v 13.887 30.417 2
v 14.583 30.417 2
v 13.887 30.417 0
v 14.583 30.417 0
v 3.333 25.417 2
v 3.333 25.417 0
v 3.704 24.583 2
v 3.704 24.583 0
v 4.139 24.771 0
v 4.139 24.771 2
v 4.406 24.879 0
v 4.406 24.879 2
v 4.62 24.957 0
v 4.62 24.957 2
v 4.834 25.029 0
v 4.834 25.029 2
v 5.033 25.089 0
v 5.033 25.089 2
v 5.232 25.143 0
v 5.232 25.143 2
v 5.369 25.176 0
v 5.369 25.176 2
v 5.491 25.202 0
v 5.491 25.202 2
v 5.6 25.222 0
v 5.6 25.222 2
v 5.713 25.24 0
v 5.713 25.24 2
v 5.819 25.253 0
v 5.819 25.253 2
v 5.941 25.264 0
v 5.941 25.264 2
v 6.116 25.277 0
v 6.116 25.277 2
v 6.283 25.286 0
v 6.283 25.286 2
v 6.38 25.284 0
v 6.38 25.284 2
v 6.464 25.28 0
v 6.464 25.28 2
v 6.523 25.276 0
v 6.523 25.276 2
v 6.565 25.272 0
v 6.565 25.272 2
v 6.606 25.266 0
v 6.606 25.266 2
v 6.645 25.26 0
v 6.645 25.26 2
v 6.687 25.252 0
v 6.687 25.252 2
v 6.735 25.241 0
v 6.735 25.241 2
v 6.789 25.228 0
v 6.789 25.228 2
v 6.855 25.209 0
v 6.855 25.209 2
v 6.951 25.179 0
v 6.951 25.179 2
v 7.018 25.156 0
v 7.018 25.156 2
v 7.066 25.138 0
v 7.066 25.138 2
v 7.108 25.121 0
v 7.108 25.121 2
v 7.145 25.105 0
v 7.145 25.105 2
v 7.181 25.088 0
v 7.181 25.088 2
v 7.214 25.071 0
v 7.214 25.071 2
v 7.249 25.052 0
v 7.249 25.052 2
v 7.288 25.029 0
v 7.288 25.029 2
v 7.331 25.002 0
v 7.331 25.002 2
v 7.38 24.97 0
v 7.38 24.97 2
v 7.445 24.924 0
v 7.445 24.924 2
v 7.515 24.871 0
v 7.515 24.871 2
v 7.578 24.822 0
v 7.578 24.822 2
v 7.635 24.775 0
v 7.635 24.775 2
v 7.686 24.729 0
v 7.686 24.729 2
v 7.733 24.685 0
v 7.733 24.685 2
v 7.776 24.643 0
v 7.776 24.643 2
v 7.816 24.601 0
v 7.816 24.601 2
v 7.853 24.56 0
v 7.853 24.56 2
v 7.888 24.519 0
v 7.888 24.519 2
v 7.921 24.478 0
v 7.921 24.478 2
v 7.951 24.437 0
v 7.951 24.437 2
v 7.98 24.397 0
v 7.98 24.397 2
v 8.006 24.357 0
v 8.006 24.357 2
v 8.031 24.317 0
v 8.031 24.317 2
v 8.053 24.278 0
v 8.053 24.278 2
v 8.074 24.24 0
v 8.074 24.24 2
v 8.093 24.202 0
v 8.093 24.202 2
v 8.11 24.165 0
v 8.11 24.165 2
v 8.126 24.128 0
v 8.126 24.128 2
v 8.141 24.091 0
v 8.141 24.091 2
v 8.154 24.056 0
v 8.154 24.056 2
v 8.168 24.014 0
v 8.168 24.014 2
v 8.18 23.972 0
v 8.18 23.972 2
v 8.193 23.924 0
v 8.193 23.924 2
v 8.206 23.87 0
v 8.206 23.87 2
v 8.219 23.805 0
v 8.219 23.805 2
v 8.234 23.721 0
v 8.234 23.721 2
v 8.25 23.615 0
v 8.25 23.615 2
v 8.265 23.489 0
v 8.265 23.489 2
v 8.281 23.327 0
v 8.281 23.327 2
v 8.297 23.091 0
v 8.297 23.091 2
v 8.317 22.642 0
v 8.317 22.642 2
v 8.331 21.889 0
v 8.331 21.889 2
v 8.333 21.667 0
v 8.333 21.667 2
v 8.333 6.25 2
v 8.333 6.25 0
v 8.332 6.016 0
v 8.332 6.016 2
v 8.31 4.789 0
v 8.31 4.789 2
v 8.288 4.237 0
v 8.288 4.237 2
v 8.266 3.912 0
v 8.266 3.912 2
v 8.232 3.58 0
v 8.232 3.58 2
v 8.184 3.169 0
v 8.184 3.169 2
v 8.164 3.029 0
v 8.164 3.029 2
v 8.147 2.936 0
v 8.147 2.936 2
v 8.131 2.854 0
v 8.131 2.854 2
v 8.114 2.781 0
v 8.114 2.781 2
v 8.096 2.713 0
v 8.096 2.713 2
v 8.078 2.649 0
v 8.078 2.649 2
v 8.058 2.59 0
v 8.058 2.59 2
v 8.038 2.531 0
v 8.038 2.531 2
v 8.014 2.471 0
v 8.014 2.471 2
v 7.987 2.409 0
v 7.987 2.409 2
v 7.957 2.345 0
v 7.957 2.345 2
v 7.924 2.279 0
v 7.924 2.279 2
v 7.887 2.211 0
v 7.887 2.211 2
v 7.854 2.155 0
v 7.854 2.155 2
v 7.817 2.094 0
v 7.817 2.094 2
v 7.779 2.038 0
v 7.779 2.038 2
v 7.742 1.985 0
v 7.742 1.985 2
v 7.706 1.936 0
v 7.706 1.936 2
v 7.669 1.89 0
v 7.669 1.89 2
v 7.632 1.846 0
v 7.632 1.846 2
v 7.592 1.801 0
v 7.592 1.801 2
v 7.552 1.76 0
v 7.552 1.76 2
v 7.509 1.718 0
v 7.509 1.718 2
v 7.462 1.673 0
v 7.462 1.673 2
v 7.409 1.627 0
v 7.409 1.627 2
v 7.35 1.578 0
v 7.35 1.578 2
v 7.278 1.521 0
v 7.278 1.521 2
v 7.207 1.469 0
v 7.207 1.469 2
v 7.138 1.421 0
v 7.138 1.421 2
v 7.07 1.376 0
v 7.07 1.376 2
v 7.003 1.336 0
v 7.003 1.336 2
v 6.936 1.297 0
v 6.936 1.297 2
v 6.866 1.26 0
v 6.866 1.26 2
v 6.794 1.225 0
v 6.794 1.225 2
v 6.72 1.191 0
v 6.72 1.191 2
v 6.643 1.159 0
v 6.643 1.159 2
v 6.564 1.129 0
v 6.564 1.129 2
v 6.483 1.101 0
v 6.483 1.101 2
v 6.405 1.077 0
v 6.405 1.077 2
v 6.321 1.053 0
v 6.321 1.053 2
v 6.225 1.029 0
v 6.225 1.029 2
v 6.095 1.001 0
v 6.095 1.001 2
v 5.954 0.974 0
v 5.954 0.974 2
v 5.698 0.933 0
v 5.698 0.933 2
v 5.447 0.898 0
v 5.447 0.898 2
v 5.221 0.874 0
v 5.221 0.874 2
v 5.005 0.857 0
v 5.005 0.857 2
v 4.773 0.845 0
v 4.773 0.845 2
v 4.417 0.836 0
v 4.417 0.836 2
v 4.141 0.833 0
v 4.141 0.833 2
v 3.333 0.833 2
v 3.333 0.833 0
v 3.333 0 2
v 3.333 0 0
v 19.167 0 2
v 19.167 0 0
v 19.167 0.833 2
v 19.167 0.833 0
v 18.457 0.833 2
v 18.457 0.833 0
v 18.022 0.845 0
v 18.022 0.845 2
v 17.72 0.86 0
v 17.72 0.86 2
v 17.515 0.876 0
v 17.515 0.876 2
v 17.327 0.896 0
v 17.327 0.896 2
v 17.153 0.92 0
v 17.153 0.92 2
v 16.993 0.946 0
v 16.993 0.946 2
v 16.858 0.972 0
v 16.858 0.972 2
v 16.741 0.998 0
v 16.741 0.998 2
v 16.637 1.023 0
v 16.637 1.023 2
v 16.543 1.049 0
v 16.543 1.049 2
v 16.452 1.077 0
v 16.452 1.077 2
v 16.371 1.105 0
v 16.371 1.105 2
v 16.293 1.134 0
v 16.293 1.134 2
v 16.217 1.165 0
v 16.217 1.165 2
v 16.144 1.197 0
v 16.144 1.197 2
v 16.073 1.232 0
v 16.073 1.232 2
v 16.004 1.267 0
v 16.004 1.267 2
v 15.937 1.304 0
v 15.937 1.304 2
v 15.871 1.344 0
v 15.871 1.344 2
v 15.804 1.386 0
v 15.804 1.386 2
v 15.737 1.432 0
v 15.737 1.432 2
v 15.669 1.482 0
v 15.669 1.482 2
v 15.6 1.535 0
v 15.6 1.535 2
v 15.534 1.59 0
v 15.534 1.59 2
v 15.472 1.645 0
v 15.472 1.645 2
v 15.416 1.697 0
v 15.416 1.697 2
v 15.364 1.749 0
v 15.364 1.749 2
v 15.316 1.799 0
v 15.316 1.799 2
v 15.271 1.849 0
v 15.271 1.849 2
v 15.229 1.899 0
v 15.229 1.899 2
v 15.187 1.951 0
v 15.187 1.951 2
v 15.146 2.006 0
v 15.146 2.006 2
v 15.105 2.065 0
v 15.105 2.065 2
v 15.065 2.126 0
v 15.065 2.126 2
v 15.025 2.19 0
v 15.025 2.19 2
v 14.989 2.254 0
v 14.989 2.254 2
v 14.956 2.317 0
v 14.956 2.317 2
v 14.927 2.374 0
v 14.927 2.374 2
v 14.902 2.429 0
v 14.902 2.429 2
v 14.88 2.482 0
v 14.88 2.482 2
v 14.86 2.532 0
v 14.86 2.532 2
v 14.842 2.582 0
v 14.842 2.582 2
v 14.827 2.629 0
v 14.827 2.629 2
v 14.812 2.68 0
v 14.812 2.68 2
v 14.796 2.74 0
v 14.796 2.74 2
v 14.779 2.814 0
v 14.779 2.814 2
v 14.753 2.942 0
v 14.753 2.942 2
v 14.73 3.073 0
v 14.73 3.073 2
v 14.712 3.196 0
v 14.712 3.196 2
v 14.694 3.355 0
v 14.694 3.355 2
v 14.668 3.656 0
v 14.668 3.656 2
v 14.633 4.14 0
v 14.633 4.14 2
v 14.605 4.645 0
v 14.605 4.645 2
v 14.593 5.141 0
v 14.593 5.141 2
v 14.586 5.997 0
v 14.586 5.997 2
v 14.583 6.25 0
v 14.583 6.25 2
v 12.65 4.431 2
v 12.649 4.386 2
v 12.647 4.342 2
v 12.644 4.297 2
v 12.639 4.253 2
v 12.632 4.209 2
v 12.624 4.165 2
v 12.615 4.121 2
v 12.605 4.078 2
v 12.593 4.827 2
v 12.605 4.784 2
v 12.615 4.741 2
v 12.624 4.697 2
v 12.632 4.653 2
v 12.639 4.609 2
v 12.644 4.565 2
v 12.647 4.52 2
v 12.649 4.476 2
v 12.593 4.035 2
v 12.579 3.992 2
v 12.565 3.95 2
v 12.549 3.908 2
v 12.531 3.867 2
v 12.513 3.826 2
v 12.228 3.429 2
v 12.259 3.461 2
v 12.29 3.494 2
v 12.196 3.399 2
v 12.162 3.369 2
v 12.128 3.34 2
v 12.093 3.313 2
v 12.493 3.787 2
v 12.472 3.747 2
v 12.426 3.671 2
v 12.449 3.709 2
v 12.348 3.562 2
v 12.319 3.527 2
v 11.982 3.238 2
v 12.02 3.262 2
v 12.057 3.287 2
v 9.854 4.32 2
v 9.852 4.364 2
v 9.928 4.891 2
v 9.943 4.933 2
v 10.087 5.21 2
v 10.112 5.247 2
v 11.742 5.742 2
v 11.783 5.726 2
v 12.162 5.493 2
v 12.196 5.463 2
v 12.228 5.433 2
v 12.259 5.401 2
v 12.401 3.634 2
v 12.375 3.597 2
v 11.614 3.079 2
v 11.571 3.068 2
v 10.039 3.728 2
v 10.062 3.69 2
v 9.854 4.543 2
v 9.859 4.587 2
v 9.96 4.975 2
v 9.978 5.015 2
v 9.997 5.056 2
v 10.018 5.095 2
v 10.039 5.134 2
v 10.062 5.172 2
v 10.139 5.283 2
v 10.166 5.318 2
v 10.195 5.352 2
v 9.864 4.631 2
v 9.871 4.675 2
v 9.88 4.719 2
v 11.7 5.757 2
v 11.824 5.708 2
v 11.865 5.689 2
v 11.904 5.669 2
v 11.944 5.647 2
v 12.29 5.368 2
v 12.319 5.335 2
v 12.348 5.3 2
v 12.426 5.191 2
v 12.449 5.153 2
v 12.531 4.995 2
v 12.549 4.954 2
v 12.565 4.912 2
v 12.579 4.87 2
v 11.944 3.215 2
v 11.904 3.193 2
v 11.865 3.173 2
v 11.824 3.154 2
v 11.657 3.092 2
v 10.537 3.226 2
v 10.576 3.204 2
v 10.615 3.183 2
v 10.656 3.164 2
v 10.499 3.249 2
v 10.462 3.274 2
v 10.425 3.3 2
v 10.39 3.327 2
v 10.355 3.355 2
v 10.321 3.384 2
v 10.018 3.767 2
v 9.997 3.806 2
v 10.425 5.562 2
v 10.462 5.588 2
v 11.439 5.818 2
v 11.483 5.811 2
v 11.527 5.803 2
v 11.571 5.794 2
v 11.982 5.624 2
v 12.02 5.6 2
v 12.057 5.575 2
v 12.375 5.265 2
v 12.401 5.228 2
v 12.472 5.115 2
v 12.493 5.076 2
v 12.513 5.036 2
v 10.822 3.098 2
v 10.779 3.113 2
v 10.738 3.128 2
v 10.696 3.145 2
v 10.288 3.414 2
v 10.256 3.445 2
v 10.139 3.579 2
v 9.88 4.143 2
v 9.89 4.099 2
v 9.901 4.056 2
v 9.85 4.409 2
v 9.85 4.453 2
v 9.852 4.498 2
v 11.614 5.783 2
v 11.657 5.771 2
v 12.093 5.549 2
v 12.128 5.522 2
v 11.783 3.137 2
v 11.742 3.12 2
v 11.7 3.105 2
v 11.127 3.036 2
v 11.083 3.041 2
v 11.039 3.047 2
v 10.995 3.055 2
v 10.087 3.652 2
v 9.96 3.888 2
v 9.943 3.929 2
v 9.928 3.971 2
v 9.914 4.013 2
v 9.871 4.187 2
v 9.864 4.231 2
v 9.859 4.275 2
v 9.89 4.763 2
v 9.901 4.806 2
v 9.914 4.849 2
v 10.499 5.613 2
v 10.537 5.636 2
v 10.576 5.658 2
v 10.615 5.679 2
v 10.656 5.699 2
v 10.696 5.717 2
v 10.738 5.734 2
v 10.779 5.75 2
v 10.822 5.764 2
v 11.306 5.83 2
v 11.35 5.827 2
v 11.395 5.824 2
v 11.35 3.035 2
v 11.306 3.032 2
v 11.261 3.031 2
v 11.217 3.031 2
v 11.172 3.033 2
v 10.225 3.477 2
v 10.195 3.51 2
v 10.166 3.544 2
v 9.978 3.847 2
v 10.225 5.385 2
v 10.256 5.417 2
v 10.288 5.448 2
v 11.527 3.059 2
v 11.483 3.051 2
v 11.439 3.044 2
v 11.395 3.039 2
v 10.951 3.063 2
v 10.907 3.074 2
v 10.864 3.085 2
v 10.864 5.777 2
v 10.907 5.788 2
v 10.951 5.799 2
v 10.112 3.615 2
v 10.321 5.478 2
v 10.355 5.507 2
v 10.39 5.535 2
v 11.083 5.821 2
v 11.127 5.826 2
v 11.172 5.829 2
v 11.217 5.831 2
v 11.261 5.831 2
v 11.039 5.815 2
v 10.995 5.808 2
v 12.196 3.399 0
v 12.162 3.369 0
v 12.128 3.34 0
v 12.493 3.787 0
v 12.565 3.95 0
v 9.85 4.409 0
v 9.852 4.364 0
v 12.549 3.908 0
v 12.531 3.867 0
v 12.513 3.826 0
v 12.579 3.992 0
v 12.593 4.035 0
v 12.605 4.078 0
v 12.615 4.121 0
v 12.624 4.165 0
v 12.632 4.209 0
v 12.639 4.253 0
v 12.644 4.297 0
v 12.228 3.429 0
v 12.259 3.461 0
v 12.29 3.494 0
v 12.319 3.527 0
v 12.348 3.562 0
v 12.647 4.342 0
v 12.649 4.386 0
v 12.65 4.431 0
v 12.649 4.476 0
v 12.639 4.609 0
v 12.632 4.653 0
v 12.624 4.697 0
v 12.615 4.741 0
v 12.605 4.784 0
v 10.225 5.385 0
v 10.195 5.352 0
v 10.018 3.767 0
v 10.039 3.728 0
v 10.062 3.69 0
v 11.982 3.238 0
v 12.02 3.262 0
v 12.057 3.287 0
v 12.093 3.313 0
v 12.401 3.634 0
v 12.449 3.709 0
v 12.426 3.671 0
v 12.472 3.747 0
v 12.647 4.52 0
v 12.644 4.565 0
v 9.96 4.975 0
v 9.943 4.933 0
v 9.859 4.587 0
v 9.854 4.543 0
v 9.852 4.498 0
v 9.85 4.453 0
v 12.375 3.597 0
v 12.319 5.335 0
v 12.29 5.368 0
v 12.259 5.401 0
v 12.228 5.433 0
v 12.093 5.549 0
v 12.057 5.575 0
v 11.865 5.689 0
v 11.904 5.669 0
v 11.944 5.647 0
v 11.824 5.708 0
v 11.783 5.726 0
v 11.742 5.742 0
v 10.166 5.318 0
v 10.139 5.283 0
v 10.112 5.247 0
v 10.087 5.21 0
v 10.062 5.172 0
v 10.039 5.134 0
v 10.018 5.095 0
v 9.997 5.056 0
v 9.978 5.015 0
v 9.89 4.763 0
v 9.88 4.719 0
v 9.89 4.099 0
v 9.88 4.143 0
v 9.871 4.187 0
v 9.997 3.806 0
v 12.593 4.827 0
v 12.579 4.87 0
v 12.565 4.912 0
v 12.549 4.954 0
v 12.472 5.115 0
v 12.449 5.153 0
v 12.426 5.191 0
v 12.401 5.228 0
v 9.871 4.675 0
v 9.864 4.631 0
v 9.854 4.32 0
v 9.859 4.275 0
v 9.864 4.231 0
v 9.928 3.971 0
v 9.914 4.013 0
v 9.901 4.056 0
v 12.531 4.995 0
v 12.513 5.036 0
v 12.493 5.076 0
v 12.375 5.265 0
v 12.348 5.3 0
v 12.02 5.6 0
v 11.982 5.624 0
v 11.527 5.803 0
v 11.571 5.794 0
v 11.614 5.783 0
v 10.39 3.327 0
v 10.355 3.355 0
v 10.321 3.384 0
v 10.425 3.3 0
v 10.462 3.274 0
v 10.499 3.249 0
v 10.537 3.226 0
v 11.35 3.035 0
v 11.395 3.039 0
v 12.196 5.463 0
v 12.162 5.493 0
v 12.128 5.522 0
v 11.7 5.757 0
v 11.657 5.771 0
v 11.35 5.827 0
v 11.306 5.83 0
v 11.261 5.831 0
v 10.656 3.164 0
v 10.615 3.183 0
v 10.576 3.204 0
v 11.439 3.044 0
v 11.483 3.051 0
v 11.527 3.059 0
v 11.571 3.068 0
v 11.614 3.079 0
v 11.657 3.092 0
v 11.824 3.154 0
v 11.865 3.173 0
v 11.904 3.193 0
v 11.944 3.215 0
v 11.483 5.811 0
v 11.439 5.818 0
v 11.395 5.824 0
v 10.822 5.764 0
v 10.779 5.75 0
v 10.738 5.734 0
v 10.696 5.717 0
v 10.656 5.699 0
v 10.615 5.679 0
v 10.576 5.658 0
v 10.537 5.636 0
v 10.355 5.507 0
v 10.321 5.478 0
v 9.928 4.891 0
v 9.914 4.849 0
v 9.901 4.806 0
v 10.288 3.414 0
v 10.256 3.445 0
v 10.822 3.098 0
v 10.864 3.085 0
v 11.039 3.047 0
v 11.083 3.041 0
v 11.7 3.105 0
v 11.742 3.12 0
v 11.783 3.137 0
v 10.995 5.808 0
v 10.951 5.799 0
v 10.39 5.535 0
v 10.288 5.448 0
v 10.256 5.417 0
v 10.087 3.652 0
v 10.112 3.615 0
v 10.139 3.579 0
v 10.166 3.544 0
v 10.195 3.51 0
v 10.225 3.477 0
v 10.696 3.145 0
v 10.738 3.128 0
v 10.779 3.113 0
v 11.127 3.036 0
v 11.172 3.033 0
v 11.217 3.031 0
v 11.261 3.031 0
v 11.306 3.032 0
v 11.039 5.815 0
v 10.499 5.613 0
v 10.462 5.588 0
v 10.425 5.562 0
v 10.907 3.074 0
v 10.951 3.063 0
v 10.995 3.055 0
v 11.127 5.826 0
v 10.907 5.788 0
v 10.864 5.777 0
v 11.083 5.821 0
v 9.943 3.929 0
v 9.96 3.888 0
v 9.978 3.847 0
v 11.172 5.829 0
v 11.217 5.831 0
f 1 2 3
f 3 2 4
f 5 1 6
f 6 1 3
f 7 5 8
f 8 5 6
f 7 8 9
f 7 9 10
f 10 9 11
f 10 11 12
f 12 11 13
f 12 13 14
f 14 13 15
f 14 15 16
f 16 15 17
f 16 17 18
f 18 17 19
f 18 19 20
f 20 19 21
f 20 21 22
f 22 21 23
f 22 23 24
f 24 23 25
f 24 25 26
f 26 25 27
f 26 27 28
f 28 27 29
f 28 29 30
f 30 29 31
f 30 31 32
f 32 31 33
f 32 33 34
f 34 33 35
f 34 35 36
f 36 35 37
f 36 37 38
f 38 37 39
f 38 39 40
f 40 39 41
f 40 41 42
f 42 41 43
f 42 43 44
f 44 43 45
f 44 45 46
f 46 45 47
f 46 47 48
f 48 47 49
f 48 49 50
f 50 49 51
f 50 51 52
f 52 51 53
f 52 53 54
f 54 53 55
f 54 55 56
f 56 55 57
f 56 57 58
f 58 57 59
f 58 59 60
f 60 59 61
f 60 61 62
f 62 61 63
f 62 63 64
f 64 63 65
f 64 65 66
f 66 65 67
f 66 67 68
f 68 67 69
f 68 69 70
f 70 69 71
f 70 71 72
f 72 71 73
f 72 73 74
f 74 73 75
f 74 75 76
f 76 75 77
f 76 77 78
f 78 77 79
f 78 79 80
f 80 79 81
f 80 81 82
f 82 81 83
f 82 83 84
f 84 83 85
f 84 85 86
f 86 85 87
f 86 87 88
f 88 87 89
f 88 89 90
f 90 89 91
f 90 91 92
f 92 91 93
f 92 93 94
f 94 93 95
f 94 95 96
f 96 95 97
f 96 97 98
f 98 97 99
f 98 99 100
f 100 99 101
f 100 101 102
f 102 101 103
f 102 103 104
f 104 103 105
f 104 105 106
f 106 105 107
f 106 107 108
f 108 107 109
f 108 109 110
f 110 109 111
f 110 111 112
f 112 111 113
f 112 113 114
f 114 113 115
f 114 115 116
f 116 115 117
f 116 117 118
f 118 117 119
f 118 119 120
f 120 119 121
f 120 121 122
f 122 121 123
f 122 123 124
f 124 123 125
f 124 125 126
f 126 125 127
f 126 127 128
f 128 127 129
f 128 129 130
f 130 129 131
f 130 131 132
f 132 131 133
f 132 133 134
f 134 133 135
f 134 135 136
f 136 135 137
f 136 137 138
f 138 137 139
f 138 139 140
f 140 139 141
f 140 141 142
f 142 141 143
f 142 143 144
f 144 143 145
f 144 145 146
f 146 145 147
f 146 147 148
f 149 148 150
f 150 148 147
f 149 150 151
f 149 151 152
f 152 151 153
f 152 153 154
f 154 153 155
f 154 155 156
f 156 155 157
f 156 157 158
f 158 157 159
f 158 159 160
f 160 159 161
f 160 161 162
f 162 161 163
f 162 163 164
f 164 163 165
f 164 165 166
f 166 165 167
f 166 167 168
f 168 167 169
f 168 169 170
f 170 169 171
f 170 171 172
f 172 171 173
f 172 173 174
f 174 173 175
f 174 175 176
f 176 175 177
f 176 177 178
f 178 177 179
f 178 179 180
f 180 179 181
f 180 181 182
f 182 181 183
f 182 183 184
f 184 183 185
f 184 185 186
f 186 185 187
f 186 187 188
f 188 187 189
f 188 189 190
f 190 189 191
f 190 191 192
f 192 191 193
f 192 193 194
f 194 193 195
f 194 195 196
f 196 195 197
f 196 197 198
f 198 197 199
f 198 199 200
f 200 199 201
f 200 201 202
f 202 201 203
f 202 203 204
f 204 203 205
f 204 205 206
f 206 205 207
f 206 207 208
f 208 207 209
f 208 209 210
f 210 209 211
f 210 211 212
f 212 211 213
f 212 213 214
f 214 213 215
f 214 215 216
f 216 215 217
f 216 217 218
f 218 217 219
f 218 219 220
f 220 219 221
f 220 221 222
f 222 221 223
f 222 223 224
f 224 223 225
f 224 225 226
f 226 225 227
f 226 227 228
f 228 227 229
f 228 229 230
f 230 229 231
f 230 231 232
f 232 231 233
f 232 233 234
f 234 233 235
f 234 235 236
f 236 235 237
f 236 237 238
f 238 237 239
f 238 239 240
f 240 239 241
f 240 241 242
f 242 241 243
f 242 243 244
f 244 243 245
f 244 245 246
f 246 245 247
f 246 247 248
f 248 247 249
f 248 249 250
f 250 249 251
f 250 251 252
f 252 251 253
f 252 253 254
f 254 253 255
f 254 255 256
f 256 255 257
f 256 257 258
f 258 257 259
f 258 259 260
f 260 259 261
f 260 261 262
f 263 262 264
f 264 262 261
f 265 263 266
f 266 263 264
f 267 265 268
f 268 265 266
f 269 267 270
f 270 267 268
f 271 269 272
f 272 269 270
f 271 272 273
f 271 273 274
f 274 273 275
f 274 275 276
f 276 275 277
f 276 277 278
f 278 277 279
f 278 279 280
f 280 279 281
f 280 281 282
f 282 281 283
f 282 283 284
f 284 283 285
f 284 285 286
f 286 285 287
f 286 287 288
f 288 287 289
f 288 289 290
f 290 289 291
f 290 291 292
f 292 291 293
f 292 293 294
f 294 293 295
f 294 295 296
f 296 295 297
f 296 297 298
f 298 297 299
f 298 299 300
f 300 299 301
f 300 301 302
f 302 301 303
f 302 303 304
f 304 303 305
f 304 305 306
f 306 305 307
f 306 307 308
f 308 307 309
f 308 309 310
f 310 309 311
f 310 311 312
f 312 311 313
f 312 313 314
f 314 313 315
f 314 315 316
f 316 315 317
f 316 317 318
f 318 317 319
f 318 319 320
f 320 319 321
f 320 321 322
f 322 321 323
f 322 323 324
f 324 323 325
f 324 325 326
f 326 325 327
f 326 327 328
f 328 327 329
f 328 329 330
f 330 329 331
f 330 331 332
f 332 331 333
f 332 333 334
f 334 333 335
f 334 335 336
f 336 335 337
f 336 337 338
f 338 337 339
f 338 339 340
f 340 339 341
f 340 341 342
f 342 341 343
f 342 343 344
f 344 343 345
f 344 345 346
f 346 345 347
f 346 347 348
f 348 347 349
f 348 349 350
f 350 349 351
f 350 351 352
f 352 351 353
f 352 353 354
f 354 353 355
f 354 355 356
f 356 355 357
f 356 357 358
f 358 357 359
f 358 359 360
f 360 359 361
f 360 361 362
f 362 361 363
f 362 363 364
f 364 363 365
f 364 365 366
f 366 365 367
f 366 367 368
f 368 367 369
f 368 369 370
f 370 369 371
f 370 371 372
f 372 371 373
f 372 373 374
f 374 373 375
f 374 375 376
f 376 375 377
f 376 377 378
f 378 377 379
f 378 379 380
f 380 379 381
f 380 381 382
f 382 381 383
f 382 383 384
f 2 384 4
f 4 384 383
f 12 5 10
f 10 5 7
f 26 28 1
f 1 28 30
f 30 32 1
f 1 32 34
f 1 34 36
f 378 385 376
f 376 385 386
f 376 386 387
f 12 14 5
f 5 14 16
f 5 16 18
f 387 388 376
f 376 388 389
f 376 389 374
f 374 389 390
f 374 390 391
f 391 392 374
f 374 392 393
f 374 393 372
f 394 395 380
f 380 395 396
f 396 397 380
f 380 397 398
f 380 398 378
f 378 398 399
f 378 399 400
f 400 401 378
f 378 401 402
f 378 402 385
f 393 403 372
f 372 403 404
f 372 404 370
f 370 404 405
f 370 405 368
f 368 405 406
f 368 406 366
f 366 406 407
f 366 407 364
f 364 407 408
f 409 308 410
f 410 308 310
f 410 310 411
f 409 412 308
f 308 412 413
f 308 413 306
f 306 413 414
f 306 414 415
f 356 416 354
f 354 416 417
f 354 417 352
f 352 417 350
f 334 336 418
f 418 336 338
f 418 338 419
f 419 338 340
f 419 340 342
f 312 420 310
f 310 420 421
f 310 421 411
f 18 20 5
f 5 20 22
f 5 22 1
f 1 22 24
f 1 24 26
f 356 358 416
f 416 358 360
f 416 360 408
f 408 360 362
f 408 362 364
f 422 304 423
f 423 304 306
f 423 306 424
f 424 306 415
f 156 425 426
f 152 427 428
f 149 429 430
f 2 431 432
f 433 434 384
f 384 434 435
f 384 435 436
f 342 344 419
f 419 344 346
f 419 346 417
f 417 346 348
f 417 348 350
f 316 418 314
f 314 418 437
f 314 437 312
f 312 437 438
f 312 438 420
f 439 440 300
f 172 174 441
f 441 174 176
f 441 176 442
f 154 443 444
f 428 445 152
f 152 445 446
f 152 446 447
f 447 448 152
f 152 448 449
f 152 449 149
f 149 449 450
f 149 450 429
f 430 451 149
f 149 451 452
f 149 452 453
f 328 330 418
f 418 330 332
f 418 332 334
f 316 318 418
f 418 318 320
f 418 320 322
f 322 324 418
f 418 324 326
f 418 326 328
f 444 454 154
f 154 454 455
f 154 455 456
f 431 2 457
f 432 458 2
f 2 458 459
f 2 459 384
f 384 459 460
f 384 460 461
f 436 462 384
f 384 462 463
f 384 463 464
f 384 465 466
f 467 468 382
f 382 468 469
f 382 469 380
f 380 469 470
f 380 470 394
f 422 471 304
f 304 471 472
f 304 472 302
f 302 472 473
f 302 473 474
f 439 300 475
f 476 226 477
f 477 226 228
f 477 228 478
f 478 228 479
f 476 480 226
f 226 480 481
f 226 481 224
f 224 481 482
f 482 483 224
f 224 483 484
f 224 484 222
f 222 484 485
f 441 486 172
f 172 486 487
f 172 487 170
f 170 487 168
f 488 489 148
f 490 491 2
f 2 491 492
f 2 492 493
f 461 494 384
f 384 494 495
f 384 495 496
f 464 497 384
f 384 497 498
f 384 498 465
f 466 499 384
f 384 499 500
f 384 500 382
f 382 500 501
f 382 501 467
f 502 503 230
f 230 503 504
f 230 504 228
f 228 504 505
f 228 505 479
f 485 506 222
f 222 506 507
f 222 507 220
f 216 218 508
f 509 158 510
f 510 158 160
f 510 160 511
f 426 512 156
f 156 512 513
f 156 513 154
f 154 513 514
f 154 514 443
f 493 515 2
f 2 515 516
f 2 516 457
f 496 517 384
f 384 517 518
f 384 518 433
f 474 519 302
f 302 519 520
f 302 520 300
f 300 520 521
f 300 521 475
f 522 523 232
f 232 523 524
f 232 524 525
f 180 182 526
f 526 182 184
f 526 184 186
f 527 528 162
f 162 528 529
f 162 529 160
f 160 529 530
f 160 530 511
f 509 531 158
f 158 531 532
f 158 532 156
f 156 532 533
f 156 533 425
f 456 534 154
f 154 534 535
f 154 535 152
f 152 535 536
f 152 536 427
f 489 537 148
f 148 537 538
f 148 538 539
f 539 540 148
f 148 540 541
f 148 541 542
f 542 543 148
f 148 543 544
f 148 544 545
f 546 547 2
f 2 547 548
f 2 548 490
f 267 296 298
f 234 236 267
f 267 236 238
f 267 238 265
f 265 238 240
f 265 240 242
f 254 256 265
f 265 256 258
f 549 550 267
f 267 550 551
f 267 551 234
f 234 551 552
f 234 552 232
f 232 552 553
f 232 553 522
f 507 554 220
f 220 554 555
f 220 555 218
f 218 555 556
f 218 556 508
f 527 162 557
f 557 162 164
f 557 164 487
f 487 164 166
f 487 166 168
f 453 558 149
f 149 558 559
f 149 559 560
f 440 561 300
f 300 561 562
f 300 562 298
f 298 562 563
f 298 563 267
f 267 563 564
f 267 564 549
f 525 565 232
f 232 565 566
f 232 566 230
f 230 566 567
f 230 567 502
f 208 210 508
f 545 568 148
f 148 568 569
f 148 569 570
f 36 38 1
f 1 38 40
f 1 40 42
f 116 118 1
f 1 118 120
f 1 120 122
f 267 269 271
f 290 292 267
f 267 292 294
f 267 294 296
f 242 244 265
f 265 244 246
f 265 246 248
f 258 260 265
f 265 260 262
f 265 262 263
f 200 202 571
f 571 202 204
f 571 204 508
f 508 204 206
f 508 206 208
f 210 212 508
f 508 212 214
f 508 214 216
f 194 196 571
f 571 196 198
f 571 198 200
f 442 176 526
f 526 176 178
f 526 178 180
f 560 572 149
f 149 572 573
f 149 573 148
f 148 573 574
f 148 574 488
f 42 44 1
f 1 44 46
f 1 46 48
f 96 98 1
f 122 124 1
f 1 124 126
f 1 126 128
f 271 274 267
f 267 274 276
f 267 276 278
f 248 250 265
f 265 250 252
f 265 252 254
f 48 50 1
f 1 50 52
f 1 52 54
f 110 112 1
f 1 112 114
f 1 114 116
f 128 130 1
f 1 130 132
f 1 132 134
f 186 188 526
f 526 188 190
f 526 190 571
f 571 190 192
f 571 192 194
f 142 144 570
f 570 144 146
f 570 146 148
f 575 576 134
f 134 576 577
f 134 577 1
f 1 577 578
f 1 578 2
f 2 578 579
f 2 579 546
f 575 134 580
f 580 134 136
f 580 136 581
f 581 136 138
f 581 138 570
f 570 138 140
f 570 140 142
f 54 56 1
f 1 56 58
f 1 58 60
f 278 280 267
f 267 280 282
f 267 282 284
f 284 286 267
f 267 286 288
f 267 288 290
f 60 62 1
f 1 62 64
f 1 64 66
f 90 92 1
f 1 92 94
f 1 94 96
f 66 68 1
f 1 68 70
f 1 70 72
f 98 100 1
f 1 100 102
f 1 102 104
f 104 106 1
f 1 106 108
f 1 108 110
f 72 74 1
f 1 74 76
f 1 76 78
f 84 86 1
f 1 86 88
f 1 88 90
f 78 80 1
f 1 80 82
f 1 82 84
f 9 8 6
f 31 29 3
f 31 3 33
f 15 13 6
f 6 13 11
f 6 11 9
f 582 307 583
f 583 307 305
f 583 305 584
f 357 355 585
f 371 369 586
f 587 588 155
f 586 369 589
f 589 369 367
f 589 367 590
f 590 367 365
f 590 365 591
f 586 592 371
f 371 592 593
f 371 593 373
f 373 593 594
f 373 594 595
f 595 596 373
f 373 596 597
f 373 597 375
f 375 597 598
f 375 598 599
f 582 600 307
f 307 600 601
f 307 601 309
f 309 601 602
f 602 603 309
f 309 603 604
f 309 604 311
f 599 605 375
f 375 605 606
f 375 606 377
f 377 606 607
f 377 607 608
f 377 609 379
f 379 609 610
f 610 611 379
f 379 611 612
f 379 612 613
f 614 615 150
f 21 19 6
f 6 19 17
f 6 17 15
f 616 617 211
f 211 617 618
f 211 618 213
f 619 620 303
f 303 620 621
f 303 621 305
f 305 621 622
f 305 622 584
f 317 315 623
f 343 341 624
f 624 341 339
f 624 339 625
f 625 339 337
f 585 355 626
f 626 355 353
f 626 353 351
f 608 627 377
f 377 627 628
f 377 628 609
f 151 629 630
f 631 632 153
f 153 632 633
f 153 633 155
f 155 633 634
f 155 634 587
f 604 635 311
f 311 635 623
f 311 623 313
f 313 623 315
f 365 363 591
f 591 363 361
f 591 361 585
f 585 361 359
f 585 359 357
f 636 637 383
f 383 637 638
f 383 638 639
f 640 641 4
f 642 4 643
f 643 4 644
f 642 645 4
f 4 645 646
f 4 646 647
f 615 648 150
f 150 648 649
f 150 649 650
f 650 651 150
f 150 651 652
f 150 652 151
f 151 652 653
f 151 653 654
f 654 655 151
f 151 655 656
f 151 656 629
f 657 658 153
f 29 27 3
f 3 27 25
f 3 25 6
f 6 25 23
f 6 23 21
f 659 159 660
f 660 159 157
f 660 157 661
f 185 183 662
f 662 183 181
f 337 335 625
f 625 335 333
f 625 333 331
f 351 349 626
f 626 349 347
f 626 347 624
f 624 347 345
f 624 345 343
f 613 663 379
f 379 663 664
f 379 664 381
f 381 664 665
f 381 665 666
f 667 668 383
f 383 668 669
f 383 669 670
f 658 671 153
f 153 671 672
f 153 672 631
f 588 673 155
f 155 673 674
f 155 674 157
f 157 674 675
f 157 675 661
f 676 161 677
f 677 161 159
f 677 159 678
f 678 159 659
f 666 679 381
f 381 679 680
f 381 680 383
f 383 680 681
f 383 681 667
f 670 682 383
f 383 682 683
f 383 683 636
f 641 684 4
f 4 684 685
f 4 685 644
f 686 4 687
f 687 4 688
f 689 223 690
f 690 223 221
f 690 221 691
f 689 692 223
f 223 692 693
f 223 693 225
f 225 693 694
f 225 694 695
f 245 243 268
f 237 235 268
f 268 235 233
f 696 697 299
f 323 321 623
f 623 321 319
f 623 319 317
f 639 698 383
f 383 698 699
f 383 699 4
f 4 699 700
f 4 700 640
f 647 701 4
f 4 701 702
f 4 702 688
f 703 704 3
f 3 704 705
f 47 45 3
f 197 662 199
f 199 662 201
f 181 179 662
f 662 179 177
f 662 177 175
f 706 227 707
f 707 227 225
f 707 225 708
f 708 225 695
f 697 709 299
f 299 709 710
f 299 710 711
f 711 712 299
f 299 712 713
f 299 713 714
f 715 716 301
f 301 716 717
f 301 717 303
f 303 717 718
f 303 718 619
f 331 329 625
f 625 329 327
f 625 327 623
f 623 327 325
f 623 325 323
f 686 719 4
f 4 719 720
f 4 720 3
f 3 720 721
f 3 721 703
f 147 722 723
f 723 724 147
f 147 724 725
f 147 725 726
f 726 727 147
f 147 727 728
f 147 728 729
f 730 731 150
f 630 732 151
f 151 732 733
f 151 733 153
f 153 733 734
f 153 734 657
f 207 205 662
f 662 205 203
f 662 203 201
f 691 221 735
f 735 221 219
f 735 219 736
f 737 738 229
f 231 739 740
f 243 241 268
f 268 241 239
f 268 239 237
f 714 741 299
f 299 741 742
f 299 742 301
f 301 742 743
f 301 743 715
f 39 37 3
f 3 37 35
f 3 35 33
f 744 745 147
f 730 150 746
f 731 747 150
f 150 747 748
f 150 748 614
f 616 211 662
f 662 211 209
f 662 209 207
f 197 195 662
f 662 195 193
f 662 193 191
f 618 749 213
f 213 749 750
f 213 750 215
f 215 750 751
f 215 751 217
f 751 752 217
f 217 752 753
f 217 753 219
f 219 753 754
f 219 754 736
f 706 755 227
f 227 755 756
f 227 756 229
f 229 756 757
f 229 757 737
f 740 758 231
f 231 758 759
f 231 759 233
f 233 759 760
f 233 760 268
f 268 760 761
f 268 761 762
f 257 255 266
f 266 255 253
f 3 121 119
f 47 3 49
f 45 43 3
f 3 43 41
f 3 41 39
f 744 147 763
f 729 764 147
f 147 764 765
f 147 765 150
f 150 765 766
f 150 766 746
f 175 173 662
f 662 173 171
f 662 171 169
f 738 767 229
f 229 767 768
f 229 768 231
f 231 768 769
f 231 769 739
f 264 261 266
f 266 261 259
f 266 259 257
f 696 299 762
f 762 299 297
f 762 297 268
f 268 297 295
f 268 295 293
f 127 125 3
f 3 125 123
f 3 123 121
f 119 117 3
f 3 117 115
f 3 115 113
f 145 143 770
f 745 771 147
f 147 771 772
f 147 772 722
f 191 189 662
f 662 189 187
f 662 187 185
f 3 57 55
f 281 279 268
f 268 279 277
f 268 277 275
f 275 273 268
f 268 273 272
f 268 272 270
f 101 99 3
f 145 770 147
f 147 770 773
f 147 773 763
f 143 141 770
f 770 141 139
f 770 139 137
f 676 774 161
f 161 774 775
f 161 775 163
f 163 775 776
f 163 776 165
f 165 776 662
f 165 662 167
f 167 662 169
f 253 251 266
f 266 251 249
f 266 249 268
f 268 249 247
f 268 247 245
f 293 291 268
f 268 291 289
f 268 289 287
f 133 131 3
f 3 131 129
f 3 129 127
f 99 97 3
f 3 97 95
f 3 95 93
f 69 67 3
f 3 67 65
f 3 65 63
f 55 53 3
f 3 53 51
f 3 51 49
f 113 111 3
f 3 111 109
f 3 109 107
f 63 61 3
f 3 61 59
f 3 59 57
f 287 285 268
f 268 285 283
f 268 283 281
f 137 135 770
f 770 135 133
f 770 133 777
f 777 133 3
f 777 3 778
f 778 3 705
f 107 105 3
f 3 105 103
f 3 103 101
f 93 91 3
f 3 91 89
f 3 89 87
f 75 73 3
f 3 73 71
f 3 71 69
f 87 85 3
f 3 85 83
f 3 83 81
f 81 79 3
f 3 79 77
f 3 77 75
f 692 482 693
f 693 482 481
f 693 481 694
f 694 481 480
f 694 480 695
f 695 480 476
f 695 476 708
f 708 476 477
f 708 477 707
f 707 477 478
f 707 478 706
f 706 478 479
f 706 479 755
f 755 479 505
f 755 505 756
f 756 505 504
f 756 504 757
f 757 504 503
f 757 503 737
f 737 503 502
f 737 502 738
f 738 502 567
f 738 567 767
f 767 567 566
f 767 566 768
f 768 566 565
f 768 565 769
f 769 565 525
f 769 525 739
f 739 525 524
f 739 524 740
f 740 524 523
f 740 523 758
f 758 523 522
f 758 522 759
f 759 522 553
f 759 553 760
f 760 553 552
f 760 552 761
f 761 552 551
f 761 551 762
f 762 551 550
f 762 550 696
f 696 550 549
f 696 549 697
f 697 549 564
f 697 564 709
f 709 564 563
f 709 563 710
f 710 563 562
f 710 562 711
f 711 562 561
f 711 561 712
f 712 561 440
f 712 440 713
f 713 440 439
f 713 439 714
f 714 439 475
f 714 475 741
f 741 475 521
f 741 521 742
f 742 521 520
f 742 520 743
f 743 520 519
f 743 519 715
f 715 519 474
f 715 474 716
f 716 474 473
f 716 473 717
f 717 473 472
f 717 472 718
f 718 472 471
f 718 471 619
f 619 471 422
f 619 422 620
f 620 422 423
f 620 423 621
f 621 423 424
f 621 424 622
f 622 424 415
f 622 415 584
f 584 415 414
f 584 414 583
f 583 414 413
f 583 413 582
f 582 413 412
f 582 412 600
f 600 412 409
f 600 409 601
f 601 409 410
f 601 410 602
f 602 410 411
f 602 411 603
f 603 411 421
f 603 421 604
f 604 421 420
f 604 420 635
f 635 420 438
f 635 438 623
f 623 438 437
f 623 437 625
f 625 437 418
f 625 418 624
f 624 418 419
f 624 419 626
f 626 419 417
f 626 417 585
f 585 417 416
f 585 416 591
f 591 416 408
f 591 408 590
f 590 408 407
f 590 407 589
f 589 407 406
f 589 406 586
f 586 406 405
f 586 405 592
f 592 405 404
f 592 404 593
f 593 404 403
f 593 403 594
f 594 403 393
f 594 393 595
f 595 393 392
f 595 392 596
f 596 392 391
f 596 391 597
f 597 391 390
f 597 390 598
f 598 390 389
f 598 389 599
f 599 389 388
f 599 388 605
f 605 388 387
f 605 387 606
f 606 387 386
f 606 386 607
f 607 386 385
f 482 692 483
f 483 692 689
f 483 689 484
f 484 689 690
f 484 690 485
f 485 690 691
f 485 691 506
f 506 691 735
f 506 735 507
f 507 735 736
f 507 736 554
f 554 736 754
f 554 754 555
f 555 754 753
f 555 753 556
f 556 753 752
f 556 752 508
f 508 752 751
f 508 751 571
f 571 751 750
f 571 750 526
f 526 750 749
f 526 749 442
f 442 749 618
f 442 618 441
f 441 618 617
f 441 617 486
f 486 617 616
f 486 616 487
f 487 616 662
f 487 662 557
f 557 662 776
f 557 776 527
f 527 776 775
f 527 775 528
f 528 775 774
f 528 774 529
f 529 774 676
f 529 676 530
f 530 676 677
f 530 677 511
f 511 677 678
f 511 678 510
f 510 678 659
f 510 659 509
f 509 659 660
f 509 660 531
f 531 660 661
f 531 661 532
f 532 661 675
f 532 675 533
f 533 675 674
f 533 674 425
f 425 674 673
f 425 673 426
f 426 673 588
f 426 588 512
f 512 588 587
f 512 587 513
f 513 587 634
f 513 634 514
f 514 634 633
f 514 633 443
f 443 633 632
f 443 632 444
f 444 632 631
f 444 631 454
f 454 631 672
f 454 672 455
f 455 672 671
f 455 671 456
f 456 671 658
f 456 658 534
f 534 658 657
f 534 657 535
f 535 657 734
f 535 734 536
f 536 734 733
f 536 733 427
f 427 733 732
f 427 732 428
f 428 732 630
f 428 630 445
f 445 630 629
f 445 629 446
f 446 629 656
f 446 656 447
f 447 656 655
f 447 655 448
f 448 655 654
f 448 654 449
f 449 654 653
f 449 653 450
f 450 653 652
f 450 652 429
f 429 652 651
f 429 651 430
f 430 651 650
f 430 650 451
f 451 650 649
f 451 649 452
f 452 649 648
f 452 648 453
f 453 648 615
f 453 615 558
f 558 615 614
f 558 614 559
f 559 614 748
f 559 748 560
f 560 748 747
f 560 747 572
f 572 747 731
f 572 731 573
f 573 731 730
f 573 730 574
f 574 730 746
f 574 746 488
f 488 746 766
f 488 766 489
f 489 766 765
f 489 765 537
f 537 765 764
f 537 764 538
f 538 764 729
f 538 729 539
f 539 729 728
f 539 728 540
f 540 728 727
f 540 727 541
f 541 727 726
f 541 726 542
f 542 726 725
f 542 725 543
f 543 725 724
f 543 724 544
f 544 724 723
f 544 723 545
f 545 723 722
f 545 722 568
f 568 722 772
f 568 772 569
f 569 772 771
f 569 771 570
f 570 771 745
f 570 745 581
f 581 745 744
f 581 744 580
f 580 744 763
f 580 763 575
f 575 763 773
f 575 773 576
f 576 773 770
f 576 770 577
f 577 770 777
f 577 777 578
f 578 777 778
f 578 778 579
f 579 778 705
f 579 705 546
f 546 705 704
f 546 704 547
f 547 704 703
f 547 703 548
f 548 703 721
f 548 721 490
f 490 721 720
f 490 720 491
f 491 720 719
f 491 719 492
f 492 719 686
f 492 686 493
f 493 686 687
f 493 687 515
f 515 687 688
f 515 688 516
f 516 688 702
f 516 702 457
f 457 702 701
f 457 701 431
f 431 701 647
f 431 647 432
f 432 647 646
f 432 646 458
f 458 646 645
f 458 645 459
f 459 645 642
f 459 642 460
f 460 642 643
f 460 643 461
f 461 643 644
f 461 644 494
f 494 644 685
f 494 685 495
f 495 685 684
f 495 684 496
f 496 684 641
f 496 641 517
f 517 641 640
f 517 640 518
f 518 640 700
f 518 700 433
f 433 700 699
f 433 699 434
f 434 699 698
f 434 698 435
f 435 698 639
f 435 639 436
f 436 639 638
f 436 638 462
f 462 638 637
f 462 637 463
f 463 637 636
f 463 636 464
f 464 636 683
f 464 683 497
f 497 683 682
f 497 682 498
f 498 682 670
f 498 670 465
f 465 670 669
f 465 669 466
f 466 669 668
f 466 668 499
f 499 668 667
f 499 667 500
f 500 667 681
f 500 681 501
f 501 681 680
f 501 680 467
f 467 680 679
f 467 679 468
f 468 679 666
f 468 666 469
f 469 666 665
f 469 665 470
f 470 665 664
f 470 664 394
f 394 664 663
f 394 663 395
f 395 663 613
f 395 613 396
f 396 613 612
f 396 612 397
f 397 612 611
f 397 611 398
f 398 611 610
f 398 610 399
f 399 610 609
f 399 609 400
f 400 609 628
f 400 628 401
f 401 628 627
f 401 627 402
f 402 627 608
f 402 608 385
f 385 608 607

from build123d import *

# Parameters (mm, degrees)
BOSS_EXTRU_1_DEPTH     = 2
D_GAGEMENT_M1_61_D     = 2.8
D_GAGEMENT_M1_61_DEPTH = 50


with BuildPart() as part:
    # Esquisse1 → Boss.-Extru.1 (new body)
    with BuildSketch(Plane.XY):
        with BuildLine():
            Line((14.583333333, 30.416666667), (14.583333333, 6.25))
            add(Edge.make_bspline(
                [(14.583333333, 6.25), (14.585749256, 6.024308084), (14.59037205, 5.592453393), (14.593107367, 4.978161783), (14.611405028, 4.426616136), (14.646981306, 3.940846138), (14.677395441, 3.517336674), (14.712944408, 3.158101024), (14.76514446, 2.864876435), (14.838888581, 2.560406748), (14.984413764, 2.239748818), (15.214960792, 1.893733621), (15.519630906, 1.587915439), (15.89450585, 1.310922857), (16.371078344, 1.084888289), (16.965143818, 0.937715107), (17.673153617, 0.850195969), (18.183296053, 0.839221876), (18.45703125, 0.833333333)],
                knots=[0, 0, 0, 0, 0.000677115, 0.001295638, 0.001842862, 0.002332227, 0.002756654, 0.003116852, 0.003414414, 0.003649692, 0.00405491, 0.004462994, 0.00489115, 0.005343002, 0.005855509, 0.006461922, 0.00717093, 0.007991888, 0.007991888, 0.007991888, 0.007991888], degree=3))
            Line((18.45703125, 0.833333333), (19.166666667, 0.833333333))
            Line((19.166666667, 0.833333333), (19.166666667, 0))
            Line((19.166666667, 0), (3.333333333, 0))
            Line((3.333333333, 0), (3.333333333, 0.833333333))
            Line((3.333333333, 0.833333333), (4.140625, 0.833333333))
            add(Edge.make_bspline(
                [(4.140625, 0.833333333), (4.442698328, 0.835687663), (5.002899694, 0.840053817), (5.770530007, 0.936228913), (6.406632939, 1.056476205), (6.907434423, 1.264218402), (7.299563384, 1.524264009), (7.623976899, 1.81310173), (7.8692092, 2.158416764), (8.028282693, 2.48159017), (8.121575873, 2.791758159), (8.177804506, 3.092907226), (8.218234515, 3.458964912), (8.267780142, 3.887964386), (8.298038135, 4.385502072), (8.315191657, 4.947815768), (8.328806999, 5.577198632), (8.331771102, 6.017787475), (8.333333333, 6.25)],
                knots=[0, 0, 0, 0, 0.000905323, 0.00167894, 0.002318719, 0.002841055, 0.003292486, 0.003725612, 0.00413582, 0.004555123, 0.004800195, 0.005105353, 0.005472773, 0.005904871, 0.006400732, 0.006967475, 0.007592611, 0.008289256, 0.008289256, 0.008289256, 0.008289256], degree=3))
            Line((8.333333333, 6.25), (8.333333333, 21.666666667))
            add(Edge.make_bspline(
                [(8.333333333, 21.666666667), (8.330801084, 21.95966099), (8.326278557, 22.482940639), (8.297258707, 23.178440933), (8.247847929, 23.693374102), (8.145609707, 24.145908108), (7.885508384, 24.565723563), (7.527134719, 24.875008937), (7.193015137, 25.095723854), (6.902051175, 25.199461425), (6.599395613, 25.279885687), (6.389469577, 25.284240422), (6.282552083, 25.286458333)],
                knots=[0, 0, 0, 0, 0.000879003, 0.001569874, 0.002087524, 0.002430172, 0.002952712, 0.003533418, 0.003840513, 0.004147609, 0.004455532, 0.00477514, 0.00477514, 0.00477514, 0.00477514], degree=3))
            add(Edge.make_bspline(
                [(6.282552083, 25.286458333), (6.095285486, 25.27628682), (5.699440202, 25.254786213), (5.079734294, 25.112739688), (4.404756441, 24.891410222), (3.945850809, 24.689536321), (3.704427083, 24.583333333)],
                knots=[0, 0, 0, 0, 0.000561747, 0.001187425, 0.001899773, 0.002690541, 0.002690541, 0.002690541, 0.002690541], degree=3))
            Line((3.704427083, 24.583333333), (3.333333333, 25.416666667))
            Line((3.333333333, 25.416666667), (13.88671875, 30.416666667))
            Line((13.88671875, 30.416666667), (14.583333333, 30.416666667))
        make_face()
    extrude(amount=BOSS_EXTRU_1_DEPTH)

    # Dégagement M1.61
    with Locations(Plane.XY.offset(2)):
        with Locations((11.25, 4.431023469)):
            Hole(D_GAGEMENT_M1_61_D / 2, depth=D_GAGEMENT_M1_61_DEPTH)


solid = part.part
